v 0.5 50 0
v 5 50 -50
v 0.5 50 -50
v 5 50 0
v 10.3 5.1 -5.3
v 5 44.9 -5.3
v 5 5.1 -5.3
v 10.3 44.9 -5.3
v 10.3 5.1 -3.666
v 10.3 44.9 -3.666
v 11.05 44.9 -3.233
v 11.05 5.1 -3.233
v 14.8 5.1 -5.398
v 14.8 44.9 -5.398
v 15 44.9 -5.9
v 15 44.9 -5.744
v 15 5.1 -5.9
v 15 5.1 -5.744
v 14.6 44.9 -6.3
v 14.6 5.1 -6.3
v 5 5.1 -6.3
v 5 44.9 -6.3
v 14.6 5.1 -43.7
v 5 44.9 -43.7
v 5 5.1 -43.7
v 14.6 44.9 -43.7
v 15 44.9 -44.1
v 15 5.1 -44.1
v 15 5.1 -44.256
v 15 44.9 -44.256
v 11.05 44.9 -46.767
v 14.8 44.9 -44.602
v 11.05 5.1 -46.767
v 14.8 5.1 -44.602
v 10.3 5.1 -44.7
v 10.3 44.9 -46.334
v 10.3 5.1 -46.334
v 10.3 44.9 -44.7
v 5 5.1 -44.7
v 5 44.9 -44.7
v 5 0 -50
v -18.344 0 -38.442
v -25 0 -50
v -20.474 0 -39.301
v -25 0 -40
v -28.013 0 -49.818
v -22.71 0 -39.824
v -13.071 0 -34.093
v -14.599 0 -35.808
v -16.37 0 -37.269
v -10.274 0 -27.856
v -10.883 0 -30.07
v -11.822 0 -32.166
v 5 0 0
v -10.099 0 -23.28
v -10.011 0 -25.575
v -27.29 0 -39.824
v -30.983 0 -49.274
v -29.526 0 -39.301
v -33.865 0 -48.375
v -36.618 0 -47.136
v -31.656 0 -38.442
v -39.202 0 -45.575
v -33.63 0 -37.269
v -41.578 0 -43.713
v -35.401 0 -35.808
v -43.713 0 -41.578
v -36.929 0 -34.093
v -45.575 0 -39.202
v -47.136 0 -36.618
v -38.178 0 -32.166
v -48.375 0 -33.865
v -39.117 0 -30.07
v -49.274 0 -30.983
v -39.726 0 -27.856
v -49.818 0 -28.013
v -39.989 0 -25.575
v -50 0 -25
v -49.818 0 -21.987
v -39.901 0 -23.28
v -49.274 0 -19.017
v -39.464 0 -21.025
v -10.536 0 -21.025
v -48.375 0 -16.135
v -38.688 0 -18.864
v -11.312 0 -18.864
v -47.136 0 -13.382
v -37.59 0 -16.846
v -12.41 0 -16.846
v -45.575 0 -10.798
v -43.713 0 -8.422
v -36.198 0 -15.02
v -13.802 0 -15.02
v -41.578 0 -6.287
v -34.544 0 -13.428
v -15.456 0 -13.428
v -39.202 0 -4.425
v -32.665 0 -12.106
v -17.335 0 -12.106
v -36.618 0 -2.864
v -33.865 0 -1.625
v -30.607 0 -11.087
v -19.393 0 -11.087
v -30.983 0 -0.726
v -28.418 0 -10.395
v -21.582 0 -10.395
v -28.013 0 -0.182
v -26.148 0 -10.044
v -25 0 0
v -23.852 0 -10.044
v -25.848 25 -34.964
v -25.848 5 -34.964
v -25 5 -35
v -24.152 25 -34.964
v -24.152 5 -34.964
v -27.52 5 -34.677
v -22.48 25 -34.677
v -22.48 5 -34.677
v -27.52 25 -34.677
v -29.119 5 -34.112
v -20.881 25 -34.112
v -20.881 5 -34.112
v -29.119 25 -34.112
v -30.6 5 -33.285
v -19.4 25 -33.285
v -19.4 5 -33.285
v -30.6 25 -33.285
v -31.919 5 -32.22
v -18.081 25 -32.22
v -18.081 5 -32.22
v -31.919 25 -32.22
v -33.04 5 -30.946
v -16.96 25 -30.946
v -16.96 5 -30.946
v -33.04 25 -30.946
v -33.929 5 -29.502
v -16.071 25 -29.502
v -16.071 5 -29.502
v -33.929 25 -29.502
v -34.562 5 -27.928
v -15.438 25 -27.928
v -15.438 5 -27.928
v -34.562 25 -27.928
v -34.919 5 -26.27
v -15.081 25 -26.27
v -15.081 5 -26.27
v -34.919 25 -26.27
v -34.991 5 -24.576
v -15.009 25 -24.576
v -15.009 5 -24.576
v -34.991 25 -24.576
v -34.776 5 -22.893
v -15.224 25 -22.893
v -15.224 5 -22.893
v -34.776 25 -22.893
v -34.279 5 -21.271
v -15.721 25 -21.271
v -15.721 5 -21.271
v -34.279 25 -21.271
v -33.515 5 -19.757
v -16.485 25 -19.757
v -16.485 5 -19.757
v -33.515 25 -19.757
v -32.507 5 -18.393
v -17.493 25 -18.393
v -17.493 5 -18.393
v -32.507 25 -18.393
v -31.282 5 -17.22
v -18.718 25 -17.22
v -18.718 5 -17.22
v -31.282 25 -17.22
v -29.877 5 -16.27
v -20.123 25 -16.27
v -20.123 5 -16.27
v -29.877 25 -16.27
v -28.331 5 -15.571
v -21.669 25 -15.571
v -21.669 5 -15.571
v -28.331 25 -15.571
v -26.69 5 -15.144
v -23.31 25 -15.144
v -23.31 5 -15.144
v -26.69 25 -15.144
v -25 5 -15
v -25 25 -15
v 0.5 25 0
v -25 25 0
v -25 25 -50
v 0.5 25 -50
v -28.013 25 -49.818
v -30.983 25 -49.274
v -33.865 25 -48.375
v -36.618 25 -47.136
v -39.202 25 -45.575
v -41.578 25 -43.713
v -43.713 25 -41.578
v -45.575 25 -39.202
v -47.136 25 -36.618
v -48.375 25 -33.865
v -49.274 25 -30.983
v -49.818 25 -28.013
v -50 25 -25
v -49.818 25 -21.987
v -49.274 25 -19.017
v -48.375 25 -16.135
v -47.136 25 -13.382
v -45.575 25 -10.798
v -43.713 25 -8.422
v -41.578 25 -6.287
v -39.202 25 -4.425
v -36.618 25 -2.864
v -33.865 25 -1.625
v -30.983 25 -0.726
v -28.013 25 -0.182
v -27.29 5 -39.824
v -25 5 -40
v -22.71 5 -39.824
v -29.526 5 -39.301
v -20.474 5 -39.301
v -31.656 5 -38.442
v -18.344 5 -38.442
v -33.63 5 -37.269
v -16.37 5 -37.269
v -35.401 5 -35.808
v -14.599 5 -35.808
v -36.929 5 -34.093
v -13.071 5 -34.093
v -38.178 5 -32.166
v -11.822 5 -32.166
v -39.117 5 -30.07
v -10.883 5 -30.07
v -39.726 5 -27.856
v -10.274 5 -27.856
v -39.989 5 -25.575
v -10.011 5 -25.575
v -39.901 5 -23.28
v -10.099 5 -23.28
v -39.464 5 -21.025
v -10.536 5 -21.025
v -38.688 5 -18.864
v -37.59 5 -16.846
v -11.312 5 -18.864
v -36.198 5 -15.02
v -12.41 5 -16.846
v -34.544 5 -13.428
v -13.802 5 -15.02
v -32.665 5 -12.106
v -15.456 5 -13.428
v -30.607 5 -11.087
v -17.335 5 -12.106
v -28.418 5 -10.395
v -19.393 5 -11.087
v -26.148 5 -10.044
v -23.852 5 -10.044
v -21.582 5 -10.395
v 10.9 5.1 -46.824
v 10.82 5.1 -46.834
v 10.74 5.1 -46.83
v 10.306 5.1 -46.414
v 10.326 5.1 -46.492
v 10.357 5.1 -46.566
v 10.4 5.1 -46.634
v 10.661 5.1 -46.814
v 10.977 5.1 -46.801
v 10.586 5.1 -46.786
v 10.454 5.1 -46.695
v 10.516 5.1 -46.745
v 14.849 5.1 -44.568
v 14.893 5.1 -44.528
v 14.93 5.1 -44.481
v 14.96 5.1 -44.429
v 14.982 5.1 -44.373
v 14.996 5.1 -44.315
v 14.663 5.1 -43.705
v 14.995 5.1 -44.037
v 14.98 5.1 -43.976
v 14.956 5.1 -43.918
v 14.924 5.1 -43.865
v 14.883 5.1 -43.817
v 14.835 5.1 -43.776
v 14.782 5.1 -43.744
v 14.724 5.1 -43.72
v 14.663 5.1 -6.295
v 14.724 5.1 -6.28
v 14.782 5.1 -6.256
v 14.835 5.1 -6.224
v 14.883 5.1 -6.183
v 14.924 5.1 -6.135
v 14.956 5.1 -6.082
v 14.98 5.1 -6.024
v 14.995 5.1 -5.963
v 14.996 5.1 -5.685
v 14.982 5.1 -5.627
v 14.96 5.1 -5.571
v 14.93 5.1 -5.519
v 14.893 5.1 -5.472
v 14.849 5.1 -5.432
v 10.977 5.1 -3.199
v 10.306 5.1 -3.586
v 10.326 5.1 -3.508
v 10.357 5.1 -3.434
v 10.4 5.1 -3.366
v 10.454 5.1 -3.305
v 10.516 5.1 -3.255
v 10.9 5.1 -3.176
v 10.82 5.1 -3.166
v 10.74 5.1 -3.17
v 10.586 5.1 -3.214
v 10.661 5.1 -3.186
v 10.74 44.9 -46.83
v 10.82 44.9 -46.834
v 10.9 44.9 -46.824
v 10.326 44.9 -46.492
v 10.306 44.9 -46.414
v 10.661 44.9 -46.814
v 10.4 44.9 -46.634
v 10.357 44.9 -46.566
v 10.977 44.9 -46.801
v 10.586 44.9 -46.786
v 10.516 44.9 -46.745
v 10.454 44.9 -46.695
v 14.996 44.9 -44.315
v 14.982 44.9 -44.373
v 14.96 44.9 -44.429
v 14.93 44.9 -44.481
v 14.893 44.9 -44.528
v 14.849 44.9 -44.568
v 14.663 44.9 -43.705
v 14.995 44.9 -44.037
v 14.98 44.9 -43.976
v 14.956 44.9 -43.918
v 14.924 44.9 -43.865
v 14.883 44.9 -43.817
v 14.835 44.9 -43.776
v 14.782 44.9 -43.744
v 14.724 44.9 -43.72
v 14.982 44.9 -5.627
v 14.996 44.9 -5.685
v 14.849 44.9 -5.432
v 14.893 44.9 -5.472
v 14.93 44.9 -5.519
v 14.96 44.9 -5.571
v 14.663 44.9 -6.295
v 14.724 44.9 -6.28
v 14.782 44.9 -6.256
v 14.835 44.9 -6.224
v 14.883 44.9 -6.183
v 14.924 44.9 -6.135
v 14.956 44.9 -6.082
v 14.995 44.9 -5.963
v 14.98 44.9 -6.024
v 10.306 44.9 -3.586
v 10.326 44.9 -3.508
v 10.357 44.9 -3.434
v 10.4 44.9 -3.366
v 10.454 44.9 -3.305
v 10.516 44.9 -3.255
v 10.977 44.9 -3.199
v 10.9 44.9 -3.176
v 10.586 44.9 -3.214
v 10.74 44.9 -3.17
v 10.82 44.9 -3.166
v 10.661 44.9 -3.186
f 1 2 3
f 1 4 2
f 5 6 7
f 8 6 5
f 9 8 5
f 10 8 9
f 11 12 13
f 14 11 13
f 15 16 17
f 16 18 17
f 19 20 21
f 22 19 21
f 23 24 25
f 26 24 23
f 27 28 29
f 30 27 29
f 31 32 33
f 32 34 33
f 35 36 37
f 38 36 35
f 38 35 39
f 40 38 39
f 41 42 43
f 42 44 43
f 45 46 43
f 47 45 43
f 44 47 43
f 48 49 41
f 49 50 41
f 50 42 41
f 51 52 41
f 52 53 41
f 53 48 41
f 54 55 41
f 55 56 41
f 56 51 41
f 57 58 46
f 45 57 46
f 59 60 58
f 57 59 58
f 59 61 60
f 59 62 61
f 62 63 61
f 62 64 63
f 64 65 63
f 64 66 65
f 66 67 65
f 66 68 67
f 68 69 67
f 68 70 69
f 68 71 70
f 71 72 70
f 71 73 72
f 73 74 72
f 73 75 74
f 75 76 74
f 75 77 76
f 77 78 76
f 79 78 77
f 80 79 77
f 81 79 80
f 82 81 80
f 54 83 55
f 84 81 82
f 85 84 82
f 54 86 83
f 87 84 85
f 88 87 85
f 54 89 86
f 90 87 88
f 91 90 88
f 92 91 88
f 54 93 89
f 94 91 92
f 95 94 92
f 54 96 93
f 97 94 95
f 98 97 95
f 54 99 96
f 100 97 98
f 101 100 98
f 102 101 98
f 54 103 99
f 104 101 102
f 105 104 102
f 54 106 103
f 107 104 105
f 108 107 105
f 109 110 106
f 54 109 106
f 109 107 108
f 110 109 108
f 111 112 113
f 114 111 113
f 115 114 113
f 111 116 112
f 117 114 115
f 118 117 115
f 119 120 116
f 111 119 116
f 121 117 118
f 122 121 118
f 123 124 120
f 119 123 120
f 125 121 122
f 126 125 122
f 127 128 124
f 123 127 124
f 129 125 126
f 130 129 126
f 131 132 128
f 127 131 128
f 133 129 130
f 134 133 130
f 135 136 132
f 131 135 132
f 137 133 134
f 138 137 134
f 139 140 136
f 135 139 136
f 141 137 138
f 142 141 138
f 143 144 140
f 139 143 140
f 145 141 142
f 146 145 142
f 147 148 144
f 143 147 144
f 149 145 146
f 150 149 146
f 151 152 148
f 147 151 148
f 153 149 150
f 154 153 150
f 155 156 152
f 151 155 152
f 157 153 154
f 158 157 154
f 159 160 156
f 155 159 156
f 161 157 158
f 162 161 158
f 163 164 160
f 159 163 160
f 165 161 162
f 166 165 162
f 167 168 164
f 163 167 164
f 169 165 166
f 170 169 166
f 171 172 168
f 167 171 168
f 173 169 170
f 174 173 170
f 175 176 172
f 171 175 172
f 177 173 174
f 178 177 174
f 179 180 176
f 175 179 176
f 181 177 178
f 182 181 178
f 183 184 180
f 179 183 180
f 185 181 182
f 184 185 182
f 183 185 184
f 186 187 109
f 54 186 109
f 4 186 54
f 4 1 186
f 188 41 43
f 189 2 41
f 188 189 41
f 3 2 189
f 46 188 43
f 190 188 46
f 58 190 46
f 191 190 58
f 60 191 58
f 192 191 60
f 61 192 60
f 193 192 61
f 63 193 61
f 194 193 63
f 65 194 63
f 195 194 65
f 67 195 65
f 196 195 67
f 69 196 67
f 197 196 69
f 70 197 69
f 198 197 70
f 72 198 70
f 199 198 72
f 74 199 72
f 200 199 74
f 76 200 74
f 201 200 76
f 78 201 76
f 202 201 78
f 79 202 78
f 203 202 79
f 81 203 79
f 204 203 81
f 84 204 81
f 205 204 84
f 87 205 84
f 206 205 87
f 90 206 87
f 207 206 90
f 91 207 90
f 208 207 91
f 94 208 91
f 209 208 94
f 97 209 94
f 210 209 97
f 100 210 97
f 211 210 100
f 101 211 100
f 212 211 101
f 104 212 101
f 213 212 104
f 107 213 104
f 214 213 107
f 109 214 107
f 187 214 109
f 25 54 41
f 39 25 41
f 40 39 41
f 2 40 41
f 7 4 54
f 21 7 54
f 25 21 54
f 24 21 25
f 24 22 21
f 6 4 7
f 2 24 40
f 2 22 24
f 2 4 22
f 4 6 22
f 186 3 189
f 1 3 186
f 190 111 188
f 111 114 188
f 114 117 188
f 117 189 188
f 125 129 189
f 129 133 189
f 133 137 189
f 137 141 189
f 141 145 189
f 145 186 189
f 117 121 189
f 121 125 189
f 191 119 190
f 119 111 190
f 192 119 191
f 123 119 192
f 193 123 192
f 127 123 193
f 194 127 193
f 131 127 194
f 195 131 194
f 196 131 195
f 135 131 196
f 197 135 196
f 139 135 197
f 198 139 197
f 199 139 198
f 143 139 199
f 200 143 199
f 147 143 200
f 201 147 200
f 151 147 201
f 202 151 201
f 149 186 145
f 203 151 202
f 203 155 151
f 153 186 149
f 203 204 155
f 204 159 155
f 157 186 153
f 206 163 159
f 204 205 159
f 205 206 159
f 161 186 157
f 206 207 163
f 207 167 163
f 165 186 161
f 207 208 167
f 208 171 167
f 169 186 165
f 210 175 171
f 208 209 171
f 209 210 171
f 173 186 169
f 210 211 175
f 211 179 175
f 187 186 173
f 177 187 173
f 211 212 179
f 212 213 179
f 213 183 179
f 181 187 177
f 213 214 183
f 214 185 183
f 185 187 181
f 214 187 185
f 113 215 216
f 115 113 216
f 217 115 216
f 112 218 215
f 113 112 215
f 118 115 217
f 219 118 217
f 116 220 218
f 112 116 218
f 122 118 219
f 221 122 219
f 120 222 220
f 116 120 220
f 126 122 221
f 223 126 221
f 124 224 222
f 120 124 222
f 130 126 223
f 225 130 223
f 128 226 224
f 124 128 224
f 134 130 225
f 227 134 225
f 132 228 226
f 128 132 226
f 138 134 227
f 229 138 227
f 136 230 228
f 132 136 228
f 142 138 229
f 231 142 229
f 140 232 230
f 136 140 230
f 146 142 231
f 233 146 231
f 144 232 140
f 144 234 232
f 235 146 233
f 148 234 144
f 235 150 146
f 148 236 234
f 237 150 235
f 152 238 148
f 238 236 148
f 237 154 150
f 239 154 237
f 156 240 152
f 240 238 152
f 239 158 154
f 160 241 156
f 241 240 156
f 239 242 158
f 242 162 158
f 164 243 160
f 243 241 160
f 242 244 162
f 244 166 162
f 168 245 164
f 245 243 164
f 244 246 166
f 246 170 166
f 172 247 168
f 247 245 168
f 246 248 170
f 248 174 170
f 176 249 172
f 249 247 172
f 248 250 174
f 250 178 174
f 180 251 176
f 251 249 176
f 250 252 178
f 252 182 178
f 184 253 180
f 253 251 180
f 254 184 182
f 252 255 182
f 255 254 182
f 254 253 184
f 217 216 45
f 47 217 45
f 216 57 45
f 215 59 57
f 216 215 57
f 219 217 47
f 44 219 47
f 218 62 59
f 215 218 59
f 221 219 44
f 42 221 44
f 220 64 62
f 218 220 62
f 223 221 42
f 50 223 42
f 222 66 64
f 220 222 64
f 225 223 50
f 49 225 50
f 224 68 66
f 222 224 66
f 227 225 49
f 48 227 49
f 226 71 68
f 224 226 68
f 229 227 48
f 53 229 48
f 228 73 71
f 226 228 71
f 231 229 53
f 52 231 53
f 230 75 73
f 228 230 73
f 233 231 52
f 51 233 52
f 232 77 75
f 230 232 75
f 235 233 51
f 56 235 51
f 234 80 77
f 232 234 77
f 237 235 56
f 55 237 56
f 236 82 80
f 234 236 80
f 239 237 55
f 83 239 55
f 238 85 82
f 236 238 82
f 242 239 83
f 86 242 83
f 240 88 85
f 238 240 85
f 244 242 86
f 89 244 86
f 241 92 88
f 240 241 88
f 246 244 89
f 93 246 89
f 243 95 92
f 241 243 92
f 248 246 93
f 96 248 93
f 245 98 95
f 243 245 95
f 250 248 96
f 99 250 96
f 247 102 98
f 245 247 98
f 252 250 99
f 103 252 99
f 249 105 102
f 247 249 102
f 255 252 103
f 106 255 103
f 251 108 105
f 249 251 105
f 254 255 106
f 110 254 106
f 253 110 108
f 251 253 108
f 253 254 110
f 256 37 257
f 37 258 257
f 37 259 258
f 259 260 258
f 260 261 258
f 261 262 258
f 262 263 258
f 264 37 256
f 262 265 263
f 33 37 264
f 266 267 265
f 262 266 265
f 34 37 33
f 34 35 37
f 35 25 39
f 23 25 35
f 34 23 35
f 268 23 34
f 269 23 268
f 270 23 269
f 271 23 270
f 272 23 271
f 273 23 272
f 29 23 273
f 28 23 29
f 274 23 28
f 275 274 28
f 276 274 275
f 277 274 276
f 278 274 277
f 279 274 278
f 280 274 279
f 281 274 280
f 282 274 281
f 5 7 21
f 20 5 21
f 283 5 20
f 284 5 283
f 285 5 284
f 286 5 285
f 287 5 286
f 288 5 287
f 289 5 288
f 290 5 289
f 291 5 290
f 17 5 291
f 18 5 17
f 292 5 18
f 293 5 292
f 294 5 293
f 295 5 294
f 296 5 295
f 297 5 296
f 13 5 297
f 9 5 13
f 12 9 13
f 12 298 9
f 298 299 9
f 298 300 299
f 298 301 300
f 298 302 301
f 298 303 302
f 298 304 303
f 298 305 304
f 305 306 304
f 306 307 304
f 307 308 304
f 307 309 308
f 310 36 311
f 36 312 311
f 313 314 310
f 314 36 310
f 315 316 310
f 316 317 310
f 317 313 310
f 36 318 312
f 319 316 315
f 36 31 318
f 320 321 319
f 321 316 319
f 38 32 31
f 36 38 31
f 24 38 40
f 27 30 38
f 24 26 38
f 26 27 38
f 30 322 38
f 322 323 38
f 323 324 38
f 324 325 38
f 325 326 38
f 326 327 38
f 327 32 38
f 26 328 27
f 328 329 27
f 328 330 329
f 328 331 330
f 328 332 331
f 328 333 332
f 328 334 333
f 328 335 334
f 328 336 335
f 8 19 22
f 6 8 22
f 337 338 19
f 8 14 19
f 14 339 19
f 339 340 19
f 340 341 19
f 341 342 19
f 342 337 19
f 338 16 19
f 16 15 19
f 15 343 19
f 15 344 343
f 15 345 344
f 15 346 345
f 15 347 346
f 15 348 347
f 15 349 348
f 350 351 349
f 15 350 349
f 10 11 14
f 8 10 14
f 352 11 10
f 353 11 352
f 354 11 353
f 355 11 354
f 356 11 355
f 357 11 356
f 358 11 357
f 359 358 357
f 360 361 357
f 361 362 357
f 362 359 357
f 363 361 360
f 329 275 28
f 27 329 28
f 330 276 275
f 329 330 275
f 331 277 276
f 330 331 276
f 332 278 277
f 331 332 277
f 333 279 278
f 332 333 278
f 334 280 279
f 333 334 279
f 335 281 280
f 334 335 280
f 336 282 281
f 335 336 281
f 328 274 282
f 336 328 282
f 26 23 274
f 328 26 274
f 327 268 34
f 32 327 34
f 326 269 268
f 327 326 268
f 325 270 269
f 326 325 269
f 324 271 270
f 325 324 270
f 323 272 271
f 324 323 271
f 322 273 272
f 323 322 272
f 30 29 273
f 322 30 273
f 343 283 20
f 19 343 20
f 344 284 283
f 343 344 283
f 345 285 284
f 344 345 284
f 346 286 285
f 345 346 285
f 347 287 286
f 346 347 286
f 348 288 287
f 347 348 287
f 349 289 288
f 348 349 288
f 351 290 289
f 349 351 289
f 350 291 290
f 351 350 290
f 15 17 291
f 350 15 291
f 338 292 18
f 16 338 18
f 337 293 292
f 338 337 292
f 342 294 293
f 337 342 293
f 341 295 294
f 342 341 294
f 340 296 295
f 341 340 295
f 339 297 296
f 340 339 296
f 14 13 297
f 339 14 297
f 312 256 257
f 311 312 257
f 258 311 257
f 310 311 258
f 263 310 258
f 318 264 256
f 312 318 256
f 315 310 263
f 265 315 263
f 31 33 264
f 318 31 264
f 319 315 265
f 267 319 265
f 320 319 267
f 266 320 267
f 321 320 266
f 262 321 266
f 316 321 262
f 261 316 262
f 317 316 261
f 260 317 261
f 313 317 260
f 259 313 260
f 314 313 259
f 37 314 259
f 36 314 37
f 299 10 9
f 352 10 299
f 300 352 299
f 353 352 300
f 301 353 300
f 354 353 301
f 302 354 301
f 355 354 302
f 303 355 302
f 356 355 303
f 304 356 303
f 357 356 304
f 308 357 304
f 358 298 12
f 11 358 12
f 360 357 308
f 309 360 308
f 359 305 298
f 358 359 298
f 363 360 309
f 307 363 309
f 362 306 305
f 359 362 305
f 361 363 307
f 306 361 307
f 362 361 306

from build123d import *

# Parameters (mm, degrees)
BOSS_EXTRUDE2_DEPTH = 50
CUT_EXTRUDE1_START  = -25
CUT_EXTRUDE1_DEPTH  = 25
SKETCH5_R           = 10
CUT_EXTRUDE3_DEPTH  = 76
SKETCH10_R          = 15
CUT_EXTRUDE4_DEPTH  = 5
SKETCH17_W          = 50
SKETCH17_H          = 5.1
CUT_EXTRUDE5_DEPTH  = 90.582364336
FILLET1_R           = 0.4
FILLET2_R           = 0.5


with BuildPart() as part:
    # Sketch3 → Boss-Extrude2 (new body)
    with BuildSketch(Plane(origin=(0, 0, 0), x_dir=(1, 0, 0), z_dir=(0, 1, 0))):
        with BuildLine():
            Line((5, 44.7), (10.3, 44.7))
            Line((10.3, 44.7), (10.3, 47.2))
            Line((10.3, 47.2), (15, 44.486453735))
            Line((15, 44.486453735), (15, 43.7))
            Line((15, 43.7), (5, 43.7))
            Line((5, 43.7), (5, 6.3))
            Line((5, 6.3), (15, 6.3))
            Line((15, 6.3), (15, 5.513546265))
            Line((15, 5.513546265), (10.3, 2.8))
            Line((10.3, 2.8), (10.3, 5.3))
            Line((10.3, 5.3), (5, 5.3))
            Line((5, 5.3), (5, 0))
            Line((5, 0), (0, 0))
            Line((0, 0), (-25, 0))
            ThreePointArc((-25, 0), (-50, 25), (-25, 50))
            Line((-25, 50), (0, 50))
            Line((0, 50), (5, 50))
            Line((5, 50), (5, 44.7))
        make_face()
    extrude(amount=BOSS_EXTRUDE2_DEPTH)

    # Sketch4 → Cut-Extrude1 (cut)
    with BuildSketch(Plane(origin=(0, 50, 0), x_dir=(1, 0, 0), z_dir=(0, 1, 0)).offset(CUT_EXTRUDE1_START)):
        with BuildLine():
            Line((-25, 0), (0, 0))
            Line((0, 0), (0.5, 0))
            Line((0.5, 0), (0.5, 50))
            Line((0.5, 50), (0, 50))
            Line((0, 50), (-25, 50))
            ThreePointArc((-25, 50), (-42.67766953, 42.67766953), (-50, 25))
            ThreePointArc((-50, 25), (-42.67766953, 7.32233047), (-25, 0))
        make_face()
    extrude(amount=CUT_EXTRUDE1_DEPTH, mode=Mode.SUBTRACT)

    # Sketch5 → Cut-Extrude3 (cut, through all)
    with BuildSketch(Plane(origin=(0, 25, 0), x_dir=(1, 0, 0), z_dir=(0, 1, 0))):
        with Locations((-25, 25)):
            Circle(SKETCH5_R)
    extrude(amount=-CUT_EXTRUDE3_DEPTH, mode=Mode.SUBTRACT)

    # Sketch10 → Cut-Extrude4 (cut)
    with BuildSketch(Plane.XZ):
        with Locations((-25, -25)):
            Circle(SKETCH10_R)
    extrude(amount=-CUT_EXTRUDE4_DEPTH, mode=Mode.SUBTRACT)

    # Sketch17 → Cut-Extrude5 (cut, through all)
    with BuildSketch(Plane(origin=(5, 0, 0), x_dir=(0, 0, -1), z_dir=(1, 0, 0))):
        with Locations((25, 47.45)):
            Rectangle(SKETCH17_W, SKETCH17_H)
        with Locations((25, 2.55)):
            Rectangle(SKETCH17_W, SKETCH17_H)
    extrude(amount=CUT_EXTRUDE5_DEPTH, mode=Mode.SUBTRACT)

    # Fillet1
    fillet1_edges = [part.edges().sort_by_distance(p)[0] for p in [
        (15, 25, -43.7),
        (15, 25, -44.486453735),
        (15, 25, -6.3),
        (15, 25, -5.513546265),
    ]]
    fillet(fillet1_edges, radius=FILLET1_R)

    # Fillet2
    fillet2_edges = [part.edges().sort_by_distance(p)[0] for p in [
        (10.3, 25, -47.2),
        (10.3, 25, -2.8),
    ]]
    fillet(fillet2_edges, radius=FILLET2_R)


solid = part.part
